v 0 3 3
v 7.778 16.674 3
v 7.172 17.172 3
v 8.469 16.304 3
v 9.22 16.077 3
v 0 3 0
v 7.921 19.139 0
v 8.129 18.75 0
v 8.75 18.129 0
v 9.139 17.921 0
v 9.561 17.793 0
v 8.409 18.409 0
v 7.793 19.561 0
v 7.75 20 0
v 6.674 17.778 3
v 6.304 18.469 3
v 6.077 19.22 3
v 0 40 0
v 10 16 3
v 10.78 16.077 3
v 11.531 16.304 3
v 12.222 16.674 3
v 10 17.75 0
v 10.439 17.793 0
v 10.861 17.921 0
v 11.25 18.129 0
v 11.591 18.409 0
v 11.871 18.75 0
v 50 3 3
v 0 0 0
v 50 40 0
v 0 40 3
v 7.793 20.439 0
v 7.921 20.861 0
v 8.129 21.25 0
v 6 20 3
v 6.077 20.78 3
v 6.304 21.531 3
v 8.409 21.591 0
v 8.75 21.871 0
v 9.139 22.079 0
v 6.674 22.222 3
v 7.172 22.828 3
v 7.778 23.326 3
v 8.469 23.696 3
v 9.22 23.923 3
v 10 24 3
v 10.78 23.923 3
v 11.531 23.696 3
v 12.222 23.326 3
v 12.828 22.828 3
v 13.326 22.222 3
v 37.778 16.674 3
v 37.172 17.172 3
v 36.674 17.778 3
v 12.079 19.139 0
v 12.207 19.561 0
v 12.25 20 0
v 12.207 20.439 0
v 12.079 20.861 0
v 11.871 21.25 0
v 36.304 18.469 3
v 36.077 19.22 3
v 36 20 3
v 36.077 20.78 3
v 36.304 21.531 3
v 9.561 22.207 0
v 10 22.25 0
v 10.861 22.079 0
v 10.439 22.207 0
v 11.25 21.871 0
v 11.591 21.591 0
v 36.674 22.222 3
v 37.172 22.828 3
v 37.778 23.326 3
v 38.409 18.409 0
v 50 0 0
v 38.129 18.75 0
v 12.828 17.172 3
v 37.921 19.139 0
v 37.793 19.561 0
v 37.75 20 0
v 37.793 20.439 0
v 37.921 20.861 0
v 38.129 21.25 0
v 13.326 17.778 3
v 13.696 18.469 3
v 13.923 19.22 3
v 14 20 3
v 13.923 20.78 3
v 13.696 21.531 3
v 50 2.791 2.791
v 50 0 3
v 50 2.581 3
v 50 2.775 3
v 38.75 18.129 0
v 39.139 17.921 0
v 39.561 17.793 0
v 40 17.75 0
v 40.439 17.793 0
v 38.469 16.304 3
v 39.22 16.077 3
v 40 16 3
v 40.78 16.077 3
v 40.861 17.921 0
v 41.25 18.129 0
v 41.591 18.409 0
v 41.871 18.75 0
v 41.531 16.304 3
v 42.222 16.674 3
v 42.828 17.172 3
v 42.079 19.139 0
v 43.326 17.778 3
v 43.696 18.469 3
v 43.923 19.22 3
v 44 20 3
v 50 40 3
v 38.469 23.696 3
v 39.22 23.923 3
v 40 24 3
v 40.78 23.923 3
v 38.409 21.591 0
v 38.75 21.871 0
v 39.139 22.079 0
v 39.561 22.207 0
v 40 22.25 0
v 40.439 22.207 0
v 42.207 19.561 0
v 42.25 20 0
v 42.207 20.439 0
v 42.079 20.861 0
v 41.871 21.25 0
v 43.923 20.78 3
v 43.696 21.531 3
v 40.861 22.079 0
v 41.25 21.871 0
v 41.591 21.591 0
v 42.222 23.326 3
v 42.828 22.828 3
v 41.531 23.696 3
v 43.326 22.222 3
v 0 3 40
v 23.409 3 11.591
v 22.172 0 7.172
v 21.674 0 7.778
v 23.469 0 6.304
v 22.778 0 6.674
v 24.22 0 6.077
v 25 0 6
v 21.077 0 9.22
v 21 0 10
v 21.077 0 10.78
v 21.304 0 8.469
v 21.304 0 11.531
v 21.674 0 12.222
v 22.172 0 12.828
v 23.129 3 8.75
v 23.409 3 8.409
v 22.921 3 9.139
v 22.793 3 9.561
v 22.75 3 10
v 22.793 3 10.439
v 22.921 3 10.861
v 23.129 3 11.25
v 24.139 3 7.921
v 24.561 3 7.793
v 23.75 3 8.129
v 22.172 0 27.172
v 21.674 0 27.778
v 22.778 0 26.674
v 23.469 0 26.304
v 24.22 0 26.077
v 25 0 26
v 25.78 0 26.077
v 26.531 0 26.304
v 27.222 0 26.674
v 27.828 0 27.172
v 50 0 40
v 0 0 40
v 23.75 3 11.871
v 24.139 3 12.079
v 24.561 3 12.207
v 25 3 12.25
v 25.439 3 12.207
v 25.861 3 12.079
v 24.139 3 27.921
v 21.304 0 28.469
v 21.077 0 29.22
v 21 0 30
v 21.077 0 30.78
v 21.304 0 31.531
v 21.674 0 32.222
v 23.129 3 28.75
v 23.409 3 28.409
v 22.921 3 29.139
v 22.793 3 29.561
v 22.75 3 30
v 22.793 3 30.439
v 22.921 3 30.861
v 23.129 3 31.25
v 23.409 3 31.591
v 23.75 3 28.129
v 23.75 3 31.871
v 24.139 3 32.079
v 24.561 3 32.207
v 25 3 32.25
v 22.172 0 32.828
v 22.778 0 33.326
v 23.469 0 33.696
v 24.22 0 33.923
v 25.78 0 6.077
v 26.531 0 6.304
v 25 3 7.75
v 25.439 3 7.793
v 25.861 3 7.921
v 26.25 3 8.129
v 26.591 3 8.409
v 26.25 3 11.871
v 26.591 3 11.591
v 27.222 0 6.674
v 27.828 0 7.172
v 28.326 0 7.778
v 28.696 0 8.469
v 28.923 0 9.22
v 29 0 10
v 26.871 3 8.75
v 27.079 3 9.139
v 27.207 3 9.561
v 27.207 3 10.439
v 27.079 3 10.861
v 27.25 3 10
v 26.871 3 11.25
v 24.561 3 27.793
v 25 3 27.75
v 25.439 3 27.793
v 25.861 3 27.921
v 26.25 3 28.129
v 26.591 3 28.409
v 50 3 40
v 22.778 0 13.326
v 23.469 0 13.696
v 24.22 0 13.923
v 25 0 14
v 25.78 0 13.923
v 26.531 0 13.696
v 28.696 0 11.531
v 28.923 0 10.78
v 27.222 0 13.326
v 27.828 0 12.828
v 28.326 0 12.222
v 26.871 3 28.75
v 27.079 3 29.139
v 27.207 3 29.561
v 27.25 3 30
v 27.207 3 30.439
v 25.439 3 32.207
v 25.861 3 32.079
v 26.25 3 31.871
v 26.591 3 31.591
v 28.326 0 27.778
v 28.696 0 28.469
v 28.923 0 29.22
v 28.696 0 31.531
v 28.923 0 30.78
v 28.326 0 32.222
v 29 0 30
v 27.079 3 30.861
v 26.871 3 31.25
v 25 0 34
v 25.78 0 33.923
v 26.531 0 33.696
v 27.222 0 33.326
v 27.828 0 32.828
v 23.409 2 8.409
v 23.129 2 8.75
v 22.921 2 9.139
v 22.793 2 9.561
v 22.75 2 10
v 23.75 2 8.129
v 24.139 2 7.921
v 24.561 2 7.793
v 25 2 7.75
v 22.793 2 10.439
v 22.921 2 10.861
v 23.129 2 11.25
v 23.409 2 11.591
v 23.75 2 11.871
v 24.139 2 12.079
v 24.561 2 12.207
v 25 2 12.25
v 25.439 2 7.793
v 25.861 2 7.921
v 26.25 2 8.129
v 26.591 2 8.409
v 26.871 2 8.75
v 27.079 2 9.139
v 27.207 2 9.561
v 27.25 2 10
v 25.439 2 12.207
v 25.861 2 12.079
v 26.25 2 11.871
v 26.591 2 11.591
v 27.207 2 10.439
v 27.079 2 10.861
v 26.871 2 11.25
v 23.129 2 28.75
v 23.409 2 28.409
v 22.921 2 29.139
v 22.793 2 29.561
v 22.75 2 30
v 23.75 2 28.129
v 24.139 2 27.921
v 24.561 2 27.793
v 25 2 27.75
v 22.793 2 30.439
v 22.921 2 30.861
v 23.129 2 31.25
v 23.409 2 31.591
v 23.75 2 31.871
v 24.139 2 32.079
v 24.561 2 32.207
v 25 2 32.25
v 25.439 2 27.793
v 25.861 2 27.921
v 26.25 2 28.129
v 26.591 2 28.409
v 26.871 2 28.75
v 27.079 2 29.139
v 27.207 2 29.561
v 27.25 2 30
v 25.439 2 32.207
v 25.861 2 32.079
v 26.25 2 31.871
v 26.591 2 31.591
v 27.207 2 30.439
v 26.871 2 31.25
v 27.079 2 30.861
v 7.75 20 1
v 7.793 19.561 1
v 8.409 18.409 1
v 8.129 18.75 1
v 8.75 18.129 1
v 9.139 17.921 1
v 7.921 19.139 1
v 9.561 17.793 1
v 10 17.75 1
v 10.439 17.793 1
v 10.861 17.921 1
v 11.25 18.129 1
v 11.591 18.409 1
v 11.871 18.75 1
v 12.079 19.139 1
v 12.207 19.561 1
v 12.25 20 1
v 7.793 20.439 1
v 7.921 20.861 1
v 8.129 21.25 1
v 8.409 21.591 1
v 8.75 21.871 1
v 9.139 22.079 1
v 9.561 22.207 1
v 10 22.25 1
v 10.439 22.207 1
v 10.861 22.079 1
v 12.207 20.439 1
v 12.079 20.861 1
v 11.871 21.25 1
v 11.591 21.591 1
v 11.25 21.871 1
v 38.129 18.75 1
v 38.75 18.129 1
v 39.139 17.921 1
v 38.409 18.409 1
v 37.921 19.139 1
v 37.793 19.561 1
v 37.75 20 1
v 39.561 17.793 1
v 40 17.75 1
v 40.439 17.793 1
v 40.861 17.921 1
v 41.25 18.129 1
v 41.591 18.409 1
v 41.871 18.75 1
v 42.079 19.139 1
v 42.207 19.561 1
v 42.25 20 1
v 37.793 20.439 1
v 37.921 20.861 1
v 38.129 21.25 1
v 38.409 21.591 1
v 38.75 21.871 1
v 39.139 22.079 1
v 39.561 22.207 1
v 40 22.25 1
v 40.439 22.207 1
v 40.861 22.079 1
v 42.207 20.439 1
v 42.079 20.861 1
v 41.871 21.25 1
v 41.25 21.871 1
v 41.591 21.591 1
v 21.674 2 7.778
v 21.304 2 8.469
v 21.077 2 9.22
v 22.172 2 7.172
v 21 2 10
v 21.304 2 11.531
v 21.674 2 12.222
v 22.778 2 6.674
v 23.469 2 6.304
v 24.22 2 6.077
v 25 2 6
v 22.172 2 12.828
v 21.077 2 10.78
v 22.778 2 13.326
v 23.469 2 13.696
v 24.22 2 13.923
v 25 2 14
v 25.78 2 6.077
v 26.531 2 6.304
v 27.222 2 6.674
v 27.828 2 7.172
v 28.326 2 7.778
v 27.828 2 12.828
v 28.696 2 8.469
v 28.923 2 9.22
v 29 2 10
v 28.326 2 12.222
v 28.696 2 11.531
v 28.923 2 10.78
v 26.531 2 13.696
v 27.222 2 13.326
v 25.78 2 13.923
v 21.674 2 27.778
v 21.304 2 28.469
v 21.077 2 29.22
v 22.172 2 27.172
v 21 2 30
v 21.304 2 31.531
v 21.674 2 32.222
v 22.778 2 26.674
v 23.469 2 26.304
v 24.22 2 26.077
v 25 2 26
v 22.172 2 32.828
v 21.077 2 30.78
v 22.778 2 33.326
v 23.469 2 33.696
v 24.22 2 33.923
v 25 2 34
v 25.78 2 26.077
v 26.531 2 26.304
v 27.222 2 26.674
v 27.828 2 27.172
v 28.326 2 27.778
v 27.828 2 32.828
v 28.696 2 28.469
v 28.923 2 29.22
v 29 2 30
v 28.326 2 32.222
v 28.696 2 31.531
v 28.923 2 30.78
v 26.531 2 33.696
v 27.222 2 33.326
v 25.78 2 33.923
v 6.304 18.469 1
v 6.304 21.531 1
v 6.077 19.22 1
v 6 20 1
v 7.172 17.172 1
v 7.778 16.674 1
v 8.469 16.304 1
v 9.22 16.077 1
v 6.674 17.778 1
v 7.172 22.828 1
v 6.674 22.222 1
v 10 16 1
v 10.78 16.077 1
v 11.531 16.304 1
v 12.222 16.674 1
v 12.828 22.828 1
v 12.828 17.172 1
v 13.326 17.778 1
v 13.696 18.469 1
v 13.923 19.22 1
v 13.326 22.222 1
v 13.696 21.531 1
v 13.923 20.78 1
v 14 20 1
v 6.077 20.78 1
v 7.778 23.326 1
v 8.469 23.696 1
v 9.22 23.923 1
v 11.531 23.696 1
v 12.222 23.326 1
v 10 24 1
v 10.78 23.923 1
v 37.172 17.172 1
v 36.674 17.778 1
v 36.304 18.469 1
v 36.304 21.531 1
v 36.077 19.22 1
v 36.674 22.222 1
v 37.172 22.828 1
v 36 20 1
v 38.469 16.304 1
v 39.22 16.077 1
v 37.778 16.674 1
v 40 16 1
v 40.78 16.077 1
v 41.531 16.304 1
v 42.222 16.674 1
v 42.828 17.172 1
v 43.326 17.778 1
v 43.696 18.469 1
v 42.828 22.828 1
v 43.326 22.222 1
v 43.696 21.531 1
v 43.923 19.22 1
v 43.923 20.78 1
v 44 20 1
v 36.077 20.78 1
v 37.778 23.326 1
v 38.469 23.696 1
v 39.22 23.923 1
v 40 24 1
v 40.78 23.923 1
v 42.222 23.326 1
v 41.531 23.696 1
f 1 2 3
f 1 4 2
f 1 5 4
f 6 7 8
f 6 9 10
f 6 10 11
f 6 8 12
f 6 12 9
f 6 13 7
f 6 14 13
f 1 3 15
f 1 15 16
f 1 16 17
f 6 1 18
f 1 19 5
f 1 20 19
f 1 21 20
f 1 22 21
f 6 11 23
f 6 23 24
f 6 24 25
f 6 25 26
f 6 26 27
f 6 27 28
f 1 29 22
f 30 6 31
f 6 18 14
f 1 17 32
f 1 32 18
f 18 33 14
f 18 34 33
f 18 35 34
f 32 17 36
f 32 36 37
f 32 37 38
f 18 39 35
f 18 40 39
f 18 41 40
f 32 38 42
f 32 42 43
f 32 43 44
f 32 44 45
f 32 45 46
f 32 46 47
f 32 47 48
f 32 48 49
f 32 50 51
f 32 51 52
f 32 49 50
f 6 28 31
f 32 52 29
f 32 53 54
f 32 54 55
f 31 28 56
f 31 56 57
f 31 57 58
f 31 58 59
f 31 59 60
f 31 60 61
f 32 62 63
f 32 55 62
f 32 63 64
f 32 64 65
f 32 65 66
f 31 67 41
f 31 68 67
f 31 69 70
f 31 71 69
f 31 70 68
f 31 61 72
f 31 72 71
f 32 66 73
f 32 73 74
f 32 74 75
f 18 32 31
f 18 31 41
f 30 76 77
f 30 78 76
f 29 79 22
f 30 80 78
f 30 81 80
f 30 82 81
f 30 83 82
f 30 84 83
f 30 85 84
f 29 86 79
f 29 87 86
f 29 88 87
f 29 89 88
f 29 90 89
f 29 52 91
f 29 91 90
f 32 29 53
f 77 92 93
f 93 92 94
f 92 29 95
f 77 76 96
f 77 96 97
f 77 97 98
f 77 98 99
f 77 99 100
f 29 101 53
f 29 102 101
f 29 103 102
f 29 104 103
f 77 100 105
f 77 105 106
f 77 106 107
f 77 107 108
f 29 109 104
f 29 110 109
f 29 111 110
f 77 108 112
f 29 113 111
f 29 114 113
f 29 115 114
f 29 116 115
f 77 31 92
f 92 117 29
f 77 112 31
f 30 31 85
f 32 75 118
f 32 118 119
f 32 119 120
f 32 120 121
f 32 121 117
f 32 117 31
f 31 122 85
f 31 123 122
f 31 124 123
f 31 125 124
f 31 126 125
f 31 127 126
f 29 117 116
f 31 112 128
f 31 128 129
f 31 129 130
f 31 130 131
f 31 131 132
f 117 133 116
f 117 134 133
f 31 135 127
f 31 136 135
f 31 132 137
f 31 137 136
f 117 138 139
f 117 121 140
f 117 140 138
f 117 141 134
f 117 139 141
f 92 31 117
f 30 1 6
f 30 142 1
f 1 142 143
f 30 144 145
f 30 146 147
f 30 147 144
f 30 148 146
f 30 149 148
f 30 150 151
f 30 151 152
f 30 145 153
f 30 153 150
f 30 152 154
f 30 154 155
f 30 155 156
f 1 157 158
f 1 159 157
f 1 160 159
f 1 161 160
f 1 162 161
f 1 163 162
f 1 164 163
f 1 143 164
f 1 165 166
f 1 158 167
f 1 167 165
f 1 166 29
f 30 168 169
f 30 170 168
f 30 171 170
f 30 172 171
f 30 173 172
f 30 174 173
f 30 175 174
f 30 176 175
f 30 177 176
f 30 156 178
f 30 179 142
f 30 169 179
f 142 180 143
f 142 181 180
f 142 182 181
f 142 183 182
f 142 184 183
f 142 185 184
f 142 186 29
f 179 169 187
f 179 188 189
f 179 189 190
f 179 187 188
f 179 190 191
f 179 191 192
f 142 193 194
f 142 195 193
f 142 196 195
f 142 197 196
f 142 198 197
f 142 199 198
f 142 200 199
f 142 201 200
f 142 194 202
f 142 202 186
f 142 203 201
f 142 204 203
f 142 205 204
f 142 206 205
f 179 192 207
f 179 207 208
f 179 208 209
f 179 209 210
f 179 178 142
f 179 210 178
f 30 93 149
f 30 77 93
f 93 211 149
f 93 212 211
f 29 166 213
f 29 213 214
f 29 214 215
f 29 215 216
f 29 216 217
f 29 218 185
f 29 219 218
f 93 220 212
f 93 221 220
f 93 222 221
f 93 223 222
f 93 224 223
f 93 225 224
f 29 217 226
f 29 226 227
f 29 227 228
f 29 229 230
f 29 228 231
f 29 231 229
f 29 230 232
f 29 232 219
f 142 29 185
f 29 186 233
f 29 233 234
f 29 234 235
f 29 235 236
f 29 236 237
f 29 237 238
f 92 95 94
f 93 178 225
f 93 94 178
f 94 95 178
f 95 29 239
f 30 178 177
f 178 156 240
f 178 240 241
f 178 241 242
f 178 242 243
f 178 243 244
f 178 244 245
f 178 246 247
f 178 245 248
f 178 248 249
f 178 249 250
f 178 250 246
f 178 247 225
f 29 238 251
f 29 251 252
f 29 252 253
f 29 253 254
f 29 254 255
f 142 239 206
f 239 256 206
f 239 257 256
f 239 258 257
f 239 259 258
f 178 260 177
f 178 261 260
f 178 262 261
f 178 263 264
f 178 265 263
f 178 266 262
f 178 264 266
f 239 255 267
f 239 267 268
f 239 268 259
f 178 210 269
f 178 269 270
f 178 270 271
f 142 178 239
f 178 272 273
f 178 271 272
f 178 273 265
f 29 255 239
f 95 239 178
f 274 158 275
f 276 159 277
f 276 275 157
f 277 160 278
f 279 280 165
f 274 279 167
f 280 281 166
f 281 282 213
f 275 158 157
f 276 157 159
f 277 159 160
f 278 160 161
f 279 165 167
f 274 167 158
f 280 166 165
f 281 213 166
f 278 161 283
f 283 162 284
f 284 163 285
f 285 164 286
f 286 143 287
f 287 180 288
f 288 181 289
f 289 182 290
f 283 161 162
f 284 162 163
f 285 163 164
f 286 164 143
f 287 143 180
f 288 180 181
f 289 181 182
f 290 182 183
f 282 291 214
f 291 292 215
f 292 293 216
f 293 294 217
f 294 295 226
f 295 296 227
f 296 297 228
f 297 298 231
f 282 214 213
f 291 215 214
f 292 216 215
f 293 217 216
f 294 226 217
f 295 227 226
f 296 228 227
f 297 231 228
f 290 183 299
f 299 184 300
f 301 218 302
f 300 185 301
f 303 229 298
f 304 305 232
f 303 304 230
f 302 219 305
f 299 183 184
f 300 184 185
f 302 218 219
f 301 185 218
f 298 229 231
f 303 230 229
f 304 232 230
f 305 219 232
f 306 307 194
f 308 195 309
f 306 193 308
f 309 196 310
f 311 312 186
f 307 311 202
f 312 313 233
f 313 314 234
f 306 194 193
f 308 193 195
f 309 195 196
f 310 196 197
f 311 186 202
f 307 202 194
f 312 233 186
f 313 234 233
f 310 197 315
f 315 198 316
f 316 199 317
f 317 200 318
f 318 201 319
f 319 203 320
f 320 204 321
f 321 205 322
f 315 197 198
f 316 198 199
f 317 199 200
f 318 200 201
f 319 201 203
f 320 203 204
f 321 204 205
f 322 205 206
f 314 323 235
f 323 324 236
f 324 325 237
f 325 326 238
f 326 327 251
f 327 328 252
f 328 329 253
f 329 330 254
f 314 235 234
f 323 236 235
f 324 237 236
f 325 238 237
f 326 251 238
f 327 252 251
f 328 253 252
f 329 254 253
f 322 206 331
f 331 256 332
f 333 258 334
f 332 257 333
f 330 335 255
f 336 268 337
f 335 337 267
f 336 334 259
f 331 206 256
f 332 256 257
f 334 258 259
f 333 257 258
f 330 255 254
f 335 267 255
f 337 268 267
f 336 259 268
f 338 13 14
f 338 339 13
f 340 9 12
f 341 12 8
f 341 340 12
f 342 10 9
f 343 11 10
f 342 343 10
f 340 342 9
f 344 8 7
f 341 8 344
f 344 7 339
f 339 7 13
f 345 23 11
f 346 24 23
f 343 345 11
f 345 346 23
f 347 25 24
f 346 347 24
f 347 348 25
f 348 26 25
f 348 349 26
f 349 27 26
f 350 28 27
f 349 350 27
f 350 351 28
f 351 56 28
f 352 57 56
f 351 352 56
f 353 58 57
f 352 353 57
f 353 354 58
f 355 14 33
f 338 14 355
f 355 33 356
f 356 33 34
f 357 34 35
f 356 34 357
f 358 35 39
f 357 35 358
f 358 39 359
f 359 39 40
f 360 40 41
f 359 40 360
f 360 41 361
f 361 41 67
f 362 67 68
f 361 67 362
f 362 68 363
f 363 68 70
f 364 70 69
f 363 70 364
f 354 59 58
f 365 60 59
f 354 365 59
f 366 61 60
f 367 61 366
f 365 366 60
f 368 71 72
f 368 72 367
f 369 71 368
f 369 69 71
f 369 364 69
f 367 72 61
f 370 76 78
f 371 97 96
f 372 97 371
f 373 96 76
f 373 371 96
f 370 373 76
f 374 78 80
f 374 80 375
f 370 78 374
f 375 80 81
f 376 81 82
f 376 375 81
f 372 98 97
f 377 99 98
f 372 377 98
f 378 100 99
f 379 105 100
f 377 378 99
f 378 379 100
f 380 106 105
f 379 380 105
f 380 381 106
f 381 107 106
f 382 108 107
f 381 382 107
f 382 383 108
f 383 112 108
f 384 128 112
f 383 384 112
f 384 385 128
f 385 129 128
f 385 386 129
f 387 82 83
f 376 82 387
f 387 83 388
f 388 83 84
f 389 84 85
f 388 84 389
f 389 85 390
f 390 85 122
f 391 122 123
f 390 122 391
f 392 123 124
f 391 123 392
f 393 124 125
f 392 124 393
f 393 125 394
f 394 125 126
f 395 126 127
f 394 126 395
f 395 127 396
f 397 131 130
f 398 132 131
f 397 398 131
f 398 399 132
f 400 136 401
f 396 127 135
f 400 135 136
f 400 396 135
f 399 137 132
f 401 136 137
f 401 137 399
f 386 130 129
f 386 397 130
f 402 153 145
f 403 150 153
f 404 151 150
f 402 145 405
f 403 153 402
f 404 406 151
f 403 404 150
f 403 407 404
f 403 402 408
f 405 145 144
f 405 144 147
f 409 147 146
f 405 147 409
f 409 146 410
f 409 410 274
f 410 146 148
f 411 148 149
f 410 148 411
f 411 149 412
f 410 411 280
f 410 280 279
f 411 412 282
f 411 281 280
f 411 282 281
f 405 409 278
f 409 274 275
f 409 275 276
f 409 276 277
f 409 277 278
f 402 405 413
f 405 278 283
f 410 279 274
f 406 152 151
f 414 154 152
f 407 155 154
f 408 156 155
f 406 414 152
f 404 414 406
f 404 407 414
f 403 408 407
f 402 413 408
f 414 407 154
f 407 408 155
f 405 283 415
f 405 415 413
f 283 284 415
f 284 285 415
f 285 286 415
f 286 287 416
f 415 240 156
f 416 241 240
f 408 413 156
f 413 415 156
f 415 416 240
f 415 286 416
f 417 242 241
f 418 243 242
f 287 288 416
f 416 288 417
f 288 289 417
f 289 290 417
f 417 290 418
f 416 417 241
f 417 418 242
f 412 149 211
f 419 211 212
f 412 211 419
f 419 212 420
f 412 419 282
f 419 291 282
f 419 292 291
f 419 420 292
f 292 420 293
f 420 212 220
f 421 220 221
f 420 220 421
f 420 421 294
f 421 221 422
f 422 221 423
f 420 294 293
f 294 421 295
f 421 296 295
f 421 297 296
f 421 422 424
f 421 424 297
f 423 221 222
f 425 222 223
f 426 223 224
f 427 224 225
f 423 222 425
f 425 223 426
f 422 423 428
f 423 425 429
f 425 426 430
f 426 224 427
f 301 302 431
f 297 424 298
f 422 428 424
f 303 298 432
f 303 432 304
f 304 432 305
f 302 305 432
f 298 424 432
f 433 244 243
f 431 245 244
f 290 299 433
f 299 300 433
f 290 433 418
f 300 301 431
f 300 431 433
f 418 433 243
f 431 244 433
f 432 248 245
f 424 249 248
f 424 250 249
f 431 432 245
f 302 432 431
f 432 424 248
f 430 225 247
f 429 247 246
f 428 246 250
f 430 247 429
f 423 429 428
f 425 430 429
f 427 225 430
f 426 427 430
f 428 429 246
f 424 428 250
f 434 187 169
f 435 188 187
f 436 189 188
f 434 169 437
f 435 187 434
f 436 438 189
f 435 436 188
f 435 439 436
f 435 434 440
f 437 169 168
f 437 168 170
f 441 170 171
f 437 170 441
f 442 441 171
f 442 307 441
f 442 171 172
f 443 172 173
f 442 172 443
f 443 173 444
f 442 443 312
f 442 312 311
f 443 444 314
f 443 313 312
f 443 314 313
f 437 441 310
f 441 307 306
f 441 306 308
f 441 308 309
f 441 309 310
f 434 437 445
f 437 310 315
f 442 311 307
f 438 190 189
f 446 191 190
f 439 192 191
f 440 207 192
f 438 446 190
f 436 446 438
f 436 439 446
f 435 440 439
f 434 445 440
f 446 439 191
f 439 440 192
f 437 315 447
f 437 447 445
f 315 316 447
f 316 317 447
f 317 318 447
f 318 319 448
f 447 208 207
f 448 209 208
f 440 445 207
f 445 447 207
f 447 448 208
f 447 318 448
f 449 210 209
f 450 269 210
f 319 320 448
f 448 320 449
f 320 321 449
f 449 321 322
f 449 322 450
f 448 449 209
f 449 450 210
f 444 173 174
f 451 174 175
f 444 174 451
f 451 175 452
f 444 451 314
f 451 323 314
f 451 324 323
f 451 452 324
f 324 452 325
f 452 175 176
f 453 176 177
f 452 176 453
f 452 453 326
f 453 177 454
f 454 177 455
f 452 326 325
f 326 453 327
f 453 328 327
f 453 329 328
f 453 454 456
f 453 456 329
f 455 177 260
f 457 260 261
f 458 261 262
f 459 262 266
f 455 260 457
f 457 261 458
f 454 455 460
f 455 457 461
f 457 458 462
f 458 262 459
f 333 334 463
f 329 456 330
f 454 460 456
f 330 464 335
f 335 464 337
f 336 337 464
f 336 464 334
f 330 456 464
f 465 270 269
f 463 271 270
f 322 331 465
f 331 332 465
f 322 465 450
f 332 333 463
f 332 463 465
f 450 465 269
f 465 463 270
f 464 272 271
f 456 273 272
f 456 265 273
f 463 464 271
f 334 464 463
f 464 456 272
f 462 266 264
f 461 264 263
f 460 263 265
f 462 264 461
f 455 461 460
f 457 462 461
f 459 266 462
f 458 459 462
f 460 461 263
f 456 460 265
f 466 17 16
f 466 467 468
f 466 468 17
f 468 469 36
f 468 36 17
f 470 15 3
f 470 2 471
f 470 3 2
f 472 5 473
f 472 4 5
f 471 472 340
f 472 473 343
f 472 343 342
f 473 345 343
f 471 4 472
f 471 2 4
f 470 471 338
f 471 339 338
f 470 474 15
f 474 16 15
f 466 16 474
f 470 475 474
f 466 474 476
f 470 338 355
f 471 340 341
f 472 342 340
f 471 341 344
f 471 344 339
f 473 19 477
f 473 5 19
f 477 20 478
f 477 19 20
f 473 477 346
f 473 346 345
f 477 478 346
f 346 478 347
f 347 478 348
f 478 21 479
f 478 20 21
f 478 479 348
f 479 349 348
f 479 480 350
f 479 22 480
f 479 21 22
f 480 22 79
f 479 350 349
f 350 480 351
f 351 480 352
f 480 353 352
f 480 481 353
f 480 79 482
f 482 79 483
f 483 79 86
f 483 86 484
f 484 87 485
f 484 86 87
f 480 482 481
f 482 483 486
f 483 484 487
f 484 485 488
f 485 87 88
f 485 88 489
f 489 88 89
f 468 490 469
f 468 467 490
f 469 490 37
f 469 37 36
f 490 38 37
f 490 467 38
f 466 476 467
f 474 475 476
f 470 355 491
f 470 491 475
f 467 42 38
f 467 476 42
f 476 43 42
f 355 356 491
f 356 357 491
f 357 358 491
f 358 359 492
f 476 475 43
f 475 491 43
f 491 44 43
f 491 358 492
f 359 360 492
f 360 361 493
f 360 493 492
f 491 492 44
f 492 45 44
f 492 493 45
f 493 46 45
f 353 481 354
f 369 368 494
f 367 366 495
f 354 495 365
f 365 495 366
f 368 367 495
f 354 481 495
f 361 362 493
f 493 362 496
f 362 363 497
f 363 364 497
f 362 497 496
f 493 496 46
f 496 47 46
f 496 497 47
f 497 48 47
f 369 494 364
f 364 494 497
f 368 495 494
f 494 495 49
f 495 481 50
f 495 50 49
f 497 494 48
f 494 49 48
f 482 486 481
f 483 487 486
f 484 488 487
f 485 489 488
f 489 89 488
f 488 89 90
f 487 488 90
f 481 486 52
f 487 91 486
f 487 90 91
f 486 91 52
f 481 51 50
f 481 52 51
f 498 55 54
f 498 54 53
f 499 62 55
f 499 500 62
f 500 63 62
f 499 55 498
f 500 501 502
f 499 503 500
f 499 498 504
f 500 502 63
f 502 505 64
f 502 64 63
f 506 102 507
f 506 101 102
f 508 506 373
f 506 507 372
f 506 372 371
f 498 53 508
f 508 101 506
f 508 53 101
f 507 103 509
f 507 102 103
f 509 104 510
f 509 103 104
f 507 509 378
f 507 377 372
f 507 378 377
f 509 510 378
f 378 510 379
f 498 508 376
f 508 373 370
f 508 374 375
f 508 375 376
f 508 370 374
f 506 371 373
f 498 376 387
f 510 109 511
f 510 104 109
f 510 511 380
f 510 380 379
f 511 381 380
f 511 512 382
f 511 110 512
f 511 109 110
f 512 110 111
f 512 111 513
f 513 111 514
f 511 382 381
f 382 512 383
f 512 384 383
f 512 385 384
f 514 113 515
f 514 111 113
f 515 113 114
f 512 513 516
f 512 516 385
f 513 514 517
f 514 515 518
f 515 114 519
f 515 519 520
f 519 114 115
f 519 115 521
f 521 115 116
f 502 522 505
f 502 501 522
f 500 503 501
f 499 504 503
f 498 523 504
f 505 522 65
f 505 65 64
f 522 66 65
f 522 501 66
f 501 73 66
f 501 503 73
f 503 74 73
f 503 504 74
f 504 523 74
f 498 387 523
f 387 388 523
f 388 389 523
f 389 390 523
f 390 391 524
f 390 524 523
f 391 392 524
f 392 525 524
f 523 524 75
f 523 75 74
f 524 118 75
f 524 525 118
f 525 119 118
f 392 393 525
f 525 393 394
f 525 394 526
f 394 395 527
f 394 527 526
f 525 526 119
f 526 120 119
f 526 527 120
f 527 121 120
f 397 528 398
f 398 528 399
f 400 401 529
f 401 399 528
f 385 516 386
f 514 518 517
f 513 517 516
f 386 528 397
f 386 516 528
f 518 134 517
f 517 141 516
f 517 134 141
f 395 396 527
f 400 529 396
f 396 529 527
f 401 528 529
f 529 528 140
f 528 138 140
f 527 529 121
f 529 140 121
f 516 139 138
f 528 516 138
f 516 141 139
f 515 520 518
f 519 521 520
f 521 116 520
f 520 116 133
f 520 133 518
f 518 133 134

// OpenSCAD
// L-bracket with countersunk holes

// Parameters
horizontal_width = 50;  // mm
horizontal_depth = 40;  // mm
vertical_width = 50;    // mm
vertical_height = 40;   // mm
thickness = 3;          // mm

// Hole parameters
hole_diameter = 4.5;    // mm
countersink_diameter = 8;  // mm
countersink_depth = 2;  // mm
hole_offset_from_edge = 10;  // mm from edge
holes_spacing = 20;     // mm between holes

// Main L-bracket shape
module l_bracket() {
    // Horizontal flange (XY plane, at Z=0)
    cube([horizontal_width, horizontal_depth, thickness]);
    
    // Vertical flange (XZ plane, at Y=0)
    cube([vertical_width, thickness, vertical_height]);
}

// Countersunk hole
module countersunk_hole(depth = 50) {
    // Through hole
    cylinder(h = depth, r = hole_diameter / 2, center = false, $fn = 32);
    
    // Countersink
    cylinder(h = countersink_depth, r = countersink_diameter / 2, center = false, $fn = 32);
}

// Holes for horizontal flange (top side, Z direction)
module horizontal_flange_holes() {
    // Holes positioned on the centerline (Y = horizontal_depth/2)
    // Two holes symmetrically placed
    hole_y = horizontal_depth / 2;
    
    // Left hole
    hole_x_left = hole_offset_from_edge;
    translate([hole_x_left, hole_y, thickness]) {
        rotate([180, 0, 0]) {
            countersunk_hole();
        }
    }
    
    // Right hole
    hole_x_right = horizontal_width - hole_offset_from_edge;
    translate([hole_x_right, hole_y, thickness]) {
        rotate([180, 0, 0]) {
            countersunk_hole();
        }
    }
}

// Holes for vertical flange (front side, Y direction)
module vertical_flange_holes() {
    // Holes positioned on the centerline (X = vertical_width/2)
    // Two holes symmetrically placed
    hole_x = vertical_width / 2;
    
    // Bottom hole
    hole_z_bottom = hole_offset_from_edge;
    translate([hole_x, 0, hole_z_bottom]) {
        rotate([-90, 0, 0]) {
            countersunk_hole();
        }
    }
    
    // Top hole
    hole_z_top = vertical_height - hole_offset_from_edge;
    translate([hole_x, 0, hole_z_top]) {
        rotate([-90, 0, 0]) {
            countersunk_hole();
        }
    }
}

// Main assembly
difference() {
    l_bracket();
    horizontal_flange_holes();
    vertical_flange_holes();
}
